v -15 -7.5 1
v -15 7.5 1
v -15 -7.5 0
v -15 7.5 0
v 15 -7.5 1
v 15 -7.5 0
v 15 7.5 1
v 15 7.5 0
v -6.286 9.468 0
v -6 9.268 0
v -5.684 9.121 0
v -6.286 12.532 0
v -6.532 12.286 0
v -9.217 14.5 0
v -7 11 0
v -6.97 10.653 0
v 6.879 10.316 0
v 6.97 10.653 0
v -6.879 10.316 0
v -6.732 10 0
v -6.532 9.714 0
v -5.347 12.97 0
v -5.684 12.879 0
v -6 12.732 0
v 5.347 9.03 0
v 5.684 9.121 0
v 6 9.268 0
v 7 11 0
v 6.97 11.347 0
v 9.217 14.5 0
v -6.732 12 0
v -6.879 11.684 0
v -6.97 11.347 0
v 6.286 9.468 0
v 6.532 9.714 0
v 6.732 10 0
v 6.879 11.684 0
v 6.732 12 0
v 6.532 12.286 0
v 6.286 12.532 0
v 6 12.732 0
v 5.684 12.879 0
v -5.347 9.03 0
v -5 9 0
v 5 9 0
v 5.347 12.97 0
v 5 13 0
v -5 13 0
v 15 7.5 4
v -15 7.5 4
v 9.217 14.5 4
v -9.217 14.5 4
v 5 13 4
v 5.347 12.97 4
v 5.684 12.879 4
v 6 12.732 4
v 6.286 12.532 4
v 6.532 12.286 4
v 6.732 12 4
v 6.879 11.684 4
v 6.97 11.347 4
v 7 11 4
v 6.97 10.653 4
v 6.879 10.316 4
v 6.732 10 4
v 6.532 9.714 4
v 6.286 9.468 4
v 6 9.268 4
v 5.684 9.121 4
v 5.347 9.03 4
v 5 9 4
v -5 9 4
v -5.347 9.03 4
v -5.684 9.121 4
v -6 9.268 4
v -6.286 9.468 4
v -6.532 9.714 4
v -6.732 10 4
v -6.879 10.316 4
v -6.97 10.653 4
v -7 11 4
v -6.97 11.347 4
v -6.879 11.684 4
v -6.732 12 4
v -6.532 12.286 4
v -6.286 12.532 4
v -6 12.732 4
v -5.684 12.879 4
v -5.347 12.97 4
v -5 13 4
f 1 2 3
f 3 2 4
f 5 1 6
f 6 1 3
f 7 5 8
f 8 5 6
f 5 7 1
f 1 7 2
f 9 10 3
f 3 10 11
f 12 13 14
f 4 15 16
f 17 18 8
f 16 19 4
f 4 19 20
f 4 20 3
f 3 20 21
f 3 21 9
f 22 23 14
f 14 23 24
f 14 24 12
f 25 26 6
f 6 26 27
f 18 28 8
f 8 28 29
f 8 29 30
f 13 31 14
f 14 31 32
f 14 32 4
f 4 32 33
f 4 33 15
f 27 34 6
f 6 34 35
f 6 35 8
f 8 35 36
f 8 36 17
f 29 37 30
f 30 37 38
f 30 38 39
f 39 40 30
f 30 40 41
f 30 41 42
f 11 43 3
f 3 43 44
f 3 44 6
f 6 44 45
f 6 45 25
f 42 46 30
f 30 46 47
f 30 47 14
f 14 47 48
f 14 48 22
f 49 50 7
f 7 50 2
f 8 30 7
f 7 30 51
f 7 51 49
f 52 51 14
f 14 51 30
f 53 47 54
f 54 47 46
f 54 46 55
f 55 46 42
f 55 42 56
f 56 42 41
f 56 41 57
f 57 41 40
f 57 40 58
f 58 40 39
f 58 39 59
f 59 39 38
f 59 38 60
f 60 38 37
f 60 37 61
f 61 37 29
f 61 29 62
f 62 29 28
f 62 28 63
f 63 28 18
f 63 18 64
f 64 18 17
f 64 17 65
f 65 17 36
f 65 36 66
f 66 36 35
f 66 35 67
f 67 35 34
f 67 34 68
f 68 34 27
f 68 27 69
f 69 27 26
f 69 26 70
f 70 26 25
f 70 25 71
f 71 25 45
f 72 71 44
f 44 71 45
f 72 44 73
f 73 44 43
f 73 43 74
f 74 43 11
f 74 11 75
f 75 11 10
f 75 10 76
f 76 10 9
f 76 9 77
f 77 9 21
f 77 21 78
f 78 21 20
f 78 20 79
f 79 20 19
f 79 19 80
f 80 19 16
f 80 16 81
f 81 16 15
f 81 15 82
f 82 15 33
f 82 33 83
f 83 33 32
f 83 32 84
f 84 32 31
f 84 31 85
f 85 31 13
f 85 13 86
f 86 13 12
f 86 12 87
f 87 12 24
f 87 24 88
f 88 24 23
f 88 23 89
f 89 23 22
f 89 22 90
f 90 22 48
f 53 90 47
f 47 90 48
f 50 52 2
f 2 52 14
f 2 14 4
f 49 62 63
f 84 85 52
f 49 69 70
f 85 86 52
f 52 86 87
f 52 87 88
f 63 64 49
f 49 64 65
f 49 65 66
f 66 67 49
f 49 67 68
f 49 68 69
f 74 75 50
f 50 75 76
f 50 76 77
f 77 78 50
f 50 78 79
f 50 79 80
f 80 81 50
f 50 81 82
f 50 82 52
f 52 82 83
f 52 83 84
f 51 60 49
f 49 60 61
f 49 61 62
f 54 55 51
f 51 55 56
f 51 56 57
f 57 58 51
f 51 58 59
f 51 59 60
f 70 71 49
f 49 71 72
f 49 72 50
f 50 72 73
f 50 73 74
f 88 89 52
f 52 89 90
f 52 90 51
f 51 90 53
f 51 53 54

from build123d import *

# Parameters (mm, degrees)
SKETCH_1_W      = 30
SKETCH_1_H      = 15
EXTRUDE_1_DEPTH = 1
EXTRUDE_2_DEPTH = 4


with BuildPart() as part:
    # 草图1 → 凸台-拉伸1 (new body)
    with BuildSketch(Plane.XY):
        Rectangle(SKETCH_1_W, SKETCH_1_H)
    extrude(amount=EXTRUDE_1_DEPTH)

    # 草图1<3> → 凸台-拉伸2 (add)
    with BuildSketch(Plane.XY):
        Polygon((-9.217262909, 14.5), (-15, 7.5), (15, 7.5), (9.217262909, 14.5), align=None)
        with BuildLine():
            ThreePointArc((-5, 9), (-7, 11), (-5, 13))
            Line((-5, 13), (5, 13))
            ThreePointArc((5, 13), (7, 11), (5, 9))
            Line((5, 9), (-5, 9))
        make_face(mode=Mode.SUBTRACT)
    extrude(amount=EXTRUDE_2_DEPTH)


solid = part.part
